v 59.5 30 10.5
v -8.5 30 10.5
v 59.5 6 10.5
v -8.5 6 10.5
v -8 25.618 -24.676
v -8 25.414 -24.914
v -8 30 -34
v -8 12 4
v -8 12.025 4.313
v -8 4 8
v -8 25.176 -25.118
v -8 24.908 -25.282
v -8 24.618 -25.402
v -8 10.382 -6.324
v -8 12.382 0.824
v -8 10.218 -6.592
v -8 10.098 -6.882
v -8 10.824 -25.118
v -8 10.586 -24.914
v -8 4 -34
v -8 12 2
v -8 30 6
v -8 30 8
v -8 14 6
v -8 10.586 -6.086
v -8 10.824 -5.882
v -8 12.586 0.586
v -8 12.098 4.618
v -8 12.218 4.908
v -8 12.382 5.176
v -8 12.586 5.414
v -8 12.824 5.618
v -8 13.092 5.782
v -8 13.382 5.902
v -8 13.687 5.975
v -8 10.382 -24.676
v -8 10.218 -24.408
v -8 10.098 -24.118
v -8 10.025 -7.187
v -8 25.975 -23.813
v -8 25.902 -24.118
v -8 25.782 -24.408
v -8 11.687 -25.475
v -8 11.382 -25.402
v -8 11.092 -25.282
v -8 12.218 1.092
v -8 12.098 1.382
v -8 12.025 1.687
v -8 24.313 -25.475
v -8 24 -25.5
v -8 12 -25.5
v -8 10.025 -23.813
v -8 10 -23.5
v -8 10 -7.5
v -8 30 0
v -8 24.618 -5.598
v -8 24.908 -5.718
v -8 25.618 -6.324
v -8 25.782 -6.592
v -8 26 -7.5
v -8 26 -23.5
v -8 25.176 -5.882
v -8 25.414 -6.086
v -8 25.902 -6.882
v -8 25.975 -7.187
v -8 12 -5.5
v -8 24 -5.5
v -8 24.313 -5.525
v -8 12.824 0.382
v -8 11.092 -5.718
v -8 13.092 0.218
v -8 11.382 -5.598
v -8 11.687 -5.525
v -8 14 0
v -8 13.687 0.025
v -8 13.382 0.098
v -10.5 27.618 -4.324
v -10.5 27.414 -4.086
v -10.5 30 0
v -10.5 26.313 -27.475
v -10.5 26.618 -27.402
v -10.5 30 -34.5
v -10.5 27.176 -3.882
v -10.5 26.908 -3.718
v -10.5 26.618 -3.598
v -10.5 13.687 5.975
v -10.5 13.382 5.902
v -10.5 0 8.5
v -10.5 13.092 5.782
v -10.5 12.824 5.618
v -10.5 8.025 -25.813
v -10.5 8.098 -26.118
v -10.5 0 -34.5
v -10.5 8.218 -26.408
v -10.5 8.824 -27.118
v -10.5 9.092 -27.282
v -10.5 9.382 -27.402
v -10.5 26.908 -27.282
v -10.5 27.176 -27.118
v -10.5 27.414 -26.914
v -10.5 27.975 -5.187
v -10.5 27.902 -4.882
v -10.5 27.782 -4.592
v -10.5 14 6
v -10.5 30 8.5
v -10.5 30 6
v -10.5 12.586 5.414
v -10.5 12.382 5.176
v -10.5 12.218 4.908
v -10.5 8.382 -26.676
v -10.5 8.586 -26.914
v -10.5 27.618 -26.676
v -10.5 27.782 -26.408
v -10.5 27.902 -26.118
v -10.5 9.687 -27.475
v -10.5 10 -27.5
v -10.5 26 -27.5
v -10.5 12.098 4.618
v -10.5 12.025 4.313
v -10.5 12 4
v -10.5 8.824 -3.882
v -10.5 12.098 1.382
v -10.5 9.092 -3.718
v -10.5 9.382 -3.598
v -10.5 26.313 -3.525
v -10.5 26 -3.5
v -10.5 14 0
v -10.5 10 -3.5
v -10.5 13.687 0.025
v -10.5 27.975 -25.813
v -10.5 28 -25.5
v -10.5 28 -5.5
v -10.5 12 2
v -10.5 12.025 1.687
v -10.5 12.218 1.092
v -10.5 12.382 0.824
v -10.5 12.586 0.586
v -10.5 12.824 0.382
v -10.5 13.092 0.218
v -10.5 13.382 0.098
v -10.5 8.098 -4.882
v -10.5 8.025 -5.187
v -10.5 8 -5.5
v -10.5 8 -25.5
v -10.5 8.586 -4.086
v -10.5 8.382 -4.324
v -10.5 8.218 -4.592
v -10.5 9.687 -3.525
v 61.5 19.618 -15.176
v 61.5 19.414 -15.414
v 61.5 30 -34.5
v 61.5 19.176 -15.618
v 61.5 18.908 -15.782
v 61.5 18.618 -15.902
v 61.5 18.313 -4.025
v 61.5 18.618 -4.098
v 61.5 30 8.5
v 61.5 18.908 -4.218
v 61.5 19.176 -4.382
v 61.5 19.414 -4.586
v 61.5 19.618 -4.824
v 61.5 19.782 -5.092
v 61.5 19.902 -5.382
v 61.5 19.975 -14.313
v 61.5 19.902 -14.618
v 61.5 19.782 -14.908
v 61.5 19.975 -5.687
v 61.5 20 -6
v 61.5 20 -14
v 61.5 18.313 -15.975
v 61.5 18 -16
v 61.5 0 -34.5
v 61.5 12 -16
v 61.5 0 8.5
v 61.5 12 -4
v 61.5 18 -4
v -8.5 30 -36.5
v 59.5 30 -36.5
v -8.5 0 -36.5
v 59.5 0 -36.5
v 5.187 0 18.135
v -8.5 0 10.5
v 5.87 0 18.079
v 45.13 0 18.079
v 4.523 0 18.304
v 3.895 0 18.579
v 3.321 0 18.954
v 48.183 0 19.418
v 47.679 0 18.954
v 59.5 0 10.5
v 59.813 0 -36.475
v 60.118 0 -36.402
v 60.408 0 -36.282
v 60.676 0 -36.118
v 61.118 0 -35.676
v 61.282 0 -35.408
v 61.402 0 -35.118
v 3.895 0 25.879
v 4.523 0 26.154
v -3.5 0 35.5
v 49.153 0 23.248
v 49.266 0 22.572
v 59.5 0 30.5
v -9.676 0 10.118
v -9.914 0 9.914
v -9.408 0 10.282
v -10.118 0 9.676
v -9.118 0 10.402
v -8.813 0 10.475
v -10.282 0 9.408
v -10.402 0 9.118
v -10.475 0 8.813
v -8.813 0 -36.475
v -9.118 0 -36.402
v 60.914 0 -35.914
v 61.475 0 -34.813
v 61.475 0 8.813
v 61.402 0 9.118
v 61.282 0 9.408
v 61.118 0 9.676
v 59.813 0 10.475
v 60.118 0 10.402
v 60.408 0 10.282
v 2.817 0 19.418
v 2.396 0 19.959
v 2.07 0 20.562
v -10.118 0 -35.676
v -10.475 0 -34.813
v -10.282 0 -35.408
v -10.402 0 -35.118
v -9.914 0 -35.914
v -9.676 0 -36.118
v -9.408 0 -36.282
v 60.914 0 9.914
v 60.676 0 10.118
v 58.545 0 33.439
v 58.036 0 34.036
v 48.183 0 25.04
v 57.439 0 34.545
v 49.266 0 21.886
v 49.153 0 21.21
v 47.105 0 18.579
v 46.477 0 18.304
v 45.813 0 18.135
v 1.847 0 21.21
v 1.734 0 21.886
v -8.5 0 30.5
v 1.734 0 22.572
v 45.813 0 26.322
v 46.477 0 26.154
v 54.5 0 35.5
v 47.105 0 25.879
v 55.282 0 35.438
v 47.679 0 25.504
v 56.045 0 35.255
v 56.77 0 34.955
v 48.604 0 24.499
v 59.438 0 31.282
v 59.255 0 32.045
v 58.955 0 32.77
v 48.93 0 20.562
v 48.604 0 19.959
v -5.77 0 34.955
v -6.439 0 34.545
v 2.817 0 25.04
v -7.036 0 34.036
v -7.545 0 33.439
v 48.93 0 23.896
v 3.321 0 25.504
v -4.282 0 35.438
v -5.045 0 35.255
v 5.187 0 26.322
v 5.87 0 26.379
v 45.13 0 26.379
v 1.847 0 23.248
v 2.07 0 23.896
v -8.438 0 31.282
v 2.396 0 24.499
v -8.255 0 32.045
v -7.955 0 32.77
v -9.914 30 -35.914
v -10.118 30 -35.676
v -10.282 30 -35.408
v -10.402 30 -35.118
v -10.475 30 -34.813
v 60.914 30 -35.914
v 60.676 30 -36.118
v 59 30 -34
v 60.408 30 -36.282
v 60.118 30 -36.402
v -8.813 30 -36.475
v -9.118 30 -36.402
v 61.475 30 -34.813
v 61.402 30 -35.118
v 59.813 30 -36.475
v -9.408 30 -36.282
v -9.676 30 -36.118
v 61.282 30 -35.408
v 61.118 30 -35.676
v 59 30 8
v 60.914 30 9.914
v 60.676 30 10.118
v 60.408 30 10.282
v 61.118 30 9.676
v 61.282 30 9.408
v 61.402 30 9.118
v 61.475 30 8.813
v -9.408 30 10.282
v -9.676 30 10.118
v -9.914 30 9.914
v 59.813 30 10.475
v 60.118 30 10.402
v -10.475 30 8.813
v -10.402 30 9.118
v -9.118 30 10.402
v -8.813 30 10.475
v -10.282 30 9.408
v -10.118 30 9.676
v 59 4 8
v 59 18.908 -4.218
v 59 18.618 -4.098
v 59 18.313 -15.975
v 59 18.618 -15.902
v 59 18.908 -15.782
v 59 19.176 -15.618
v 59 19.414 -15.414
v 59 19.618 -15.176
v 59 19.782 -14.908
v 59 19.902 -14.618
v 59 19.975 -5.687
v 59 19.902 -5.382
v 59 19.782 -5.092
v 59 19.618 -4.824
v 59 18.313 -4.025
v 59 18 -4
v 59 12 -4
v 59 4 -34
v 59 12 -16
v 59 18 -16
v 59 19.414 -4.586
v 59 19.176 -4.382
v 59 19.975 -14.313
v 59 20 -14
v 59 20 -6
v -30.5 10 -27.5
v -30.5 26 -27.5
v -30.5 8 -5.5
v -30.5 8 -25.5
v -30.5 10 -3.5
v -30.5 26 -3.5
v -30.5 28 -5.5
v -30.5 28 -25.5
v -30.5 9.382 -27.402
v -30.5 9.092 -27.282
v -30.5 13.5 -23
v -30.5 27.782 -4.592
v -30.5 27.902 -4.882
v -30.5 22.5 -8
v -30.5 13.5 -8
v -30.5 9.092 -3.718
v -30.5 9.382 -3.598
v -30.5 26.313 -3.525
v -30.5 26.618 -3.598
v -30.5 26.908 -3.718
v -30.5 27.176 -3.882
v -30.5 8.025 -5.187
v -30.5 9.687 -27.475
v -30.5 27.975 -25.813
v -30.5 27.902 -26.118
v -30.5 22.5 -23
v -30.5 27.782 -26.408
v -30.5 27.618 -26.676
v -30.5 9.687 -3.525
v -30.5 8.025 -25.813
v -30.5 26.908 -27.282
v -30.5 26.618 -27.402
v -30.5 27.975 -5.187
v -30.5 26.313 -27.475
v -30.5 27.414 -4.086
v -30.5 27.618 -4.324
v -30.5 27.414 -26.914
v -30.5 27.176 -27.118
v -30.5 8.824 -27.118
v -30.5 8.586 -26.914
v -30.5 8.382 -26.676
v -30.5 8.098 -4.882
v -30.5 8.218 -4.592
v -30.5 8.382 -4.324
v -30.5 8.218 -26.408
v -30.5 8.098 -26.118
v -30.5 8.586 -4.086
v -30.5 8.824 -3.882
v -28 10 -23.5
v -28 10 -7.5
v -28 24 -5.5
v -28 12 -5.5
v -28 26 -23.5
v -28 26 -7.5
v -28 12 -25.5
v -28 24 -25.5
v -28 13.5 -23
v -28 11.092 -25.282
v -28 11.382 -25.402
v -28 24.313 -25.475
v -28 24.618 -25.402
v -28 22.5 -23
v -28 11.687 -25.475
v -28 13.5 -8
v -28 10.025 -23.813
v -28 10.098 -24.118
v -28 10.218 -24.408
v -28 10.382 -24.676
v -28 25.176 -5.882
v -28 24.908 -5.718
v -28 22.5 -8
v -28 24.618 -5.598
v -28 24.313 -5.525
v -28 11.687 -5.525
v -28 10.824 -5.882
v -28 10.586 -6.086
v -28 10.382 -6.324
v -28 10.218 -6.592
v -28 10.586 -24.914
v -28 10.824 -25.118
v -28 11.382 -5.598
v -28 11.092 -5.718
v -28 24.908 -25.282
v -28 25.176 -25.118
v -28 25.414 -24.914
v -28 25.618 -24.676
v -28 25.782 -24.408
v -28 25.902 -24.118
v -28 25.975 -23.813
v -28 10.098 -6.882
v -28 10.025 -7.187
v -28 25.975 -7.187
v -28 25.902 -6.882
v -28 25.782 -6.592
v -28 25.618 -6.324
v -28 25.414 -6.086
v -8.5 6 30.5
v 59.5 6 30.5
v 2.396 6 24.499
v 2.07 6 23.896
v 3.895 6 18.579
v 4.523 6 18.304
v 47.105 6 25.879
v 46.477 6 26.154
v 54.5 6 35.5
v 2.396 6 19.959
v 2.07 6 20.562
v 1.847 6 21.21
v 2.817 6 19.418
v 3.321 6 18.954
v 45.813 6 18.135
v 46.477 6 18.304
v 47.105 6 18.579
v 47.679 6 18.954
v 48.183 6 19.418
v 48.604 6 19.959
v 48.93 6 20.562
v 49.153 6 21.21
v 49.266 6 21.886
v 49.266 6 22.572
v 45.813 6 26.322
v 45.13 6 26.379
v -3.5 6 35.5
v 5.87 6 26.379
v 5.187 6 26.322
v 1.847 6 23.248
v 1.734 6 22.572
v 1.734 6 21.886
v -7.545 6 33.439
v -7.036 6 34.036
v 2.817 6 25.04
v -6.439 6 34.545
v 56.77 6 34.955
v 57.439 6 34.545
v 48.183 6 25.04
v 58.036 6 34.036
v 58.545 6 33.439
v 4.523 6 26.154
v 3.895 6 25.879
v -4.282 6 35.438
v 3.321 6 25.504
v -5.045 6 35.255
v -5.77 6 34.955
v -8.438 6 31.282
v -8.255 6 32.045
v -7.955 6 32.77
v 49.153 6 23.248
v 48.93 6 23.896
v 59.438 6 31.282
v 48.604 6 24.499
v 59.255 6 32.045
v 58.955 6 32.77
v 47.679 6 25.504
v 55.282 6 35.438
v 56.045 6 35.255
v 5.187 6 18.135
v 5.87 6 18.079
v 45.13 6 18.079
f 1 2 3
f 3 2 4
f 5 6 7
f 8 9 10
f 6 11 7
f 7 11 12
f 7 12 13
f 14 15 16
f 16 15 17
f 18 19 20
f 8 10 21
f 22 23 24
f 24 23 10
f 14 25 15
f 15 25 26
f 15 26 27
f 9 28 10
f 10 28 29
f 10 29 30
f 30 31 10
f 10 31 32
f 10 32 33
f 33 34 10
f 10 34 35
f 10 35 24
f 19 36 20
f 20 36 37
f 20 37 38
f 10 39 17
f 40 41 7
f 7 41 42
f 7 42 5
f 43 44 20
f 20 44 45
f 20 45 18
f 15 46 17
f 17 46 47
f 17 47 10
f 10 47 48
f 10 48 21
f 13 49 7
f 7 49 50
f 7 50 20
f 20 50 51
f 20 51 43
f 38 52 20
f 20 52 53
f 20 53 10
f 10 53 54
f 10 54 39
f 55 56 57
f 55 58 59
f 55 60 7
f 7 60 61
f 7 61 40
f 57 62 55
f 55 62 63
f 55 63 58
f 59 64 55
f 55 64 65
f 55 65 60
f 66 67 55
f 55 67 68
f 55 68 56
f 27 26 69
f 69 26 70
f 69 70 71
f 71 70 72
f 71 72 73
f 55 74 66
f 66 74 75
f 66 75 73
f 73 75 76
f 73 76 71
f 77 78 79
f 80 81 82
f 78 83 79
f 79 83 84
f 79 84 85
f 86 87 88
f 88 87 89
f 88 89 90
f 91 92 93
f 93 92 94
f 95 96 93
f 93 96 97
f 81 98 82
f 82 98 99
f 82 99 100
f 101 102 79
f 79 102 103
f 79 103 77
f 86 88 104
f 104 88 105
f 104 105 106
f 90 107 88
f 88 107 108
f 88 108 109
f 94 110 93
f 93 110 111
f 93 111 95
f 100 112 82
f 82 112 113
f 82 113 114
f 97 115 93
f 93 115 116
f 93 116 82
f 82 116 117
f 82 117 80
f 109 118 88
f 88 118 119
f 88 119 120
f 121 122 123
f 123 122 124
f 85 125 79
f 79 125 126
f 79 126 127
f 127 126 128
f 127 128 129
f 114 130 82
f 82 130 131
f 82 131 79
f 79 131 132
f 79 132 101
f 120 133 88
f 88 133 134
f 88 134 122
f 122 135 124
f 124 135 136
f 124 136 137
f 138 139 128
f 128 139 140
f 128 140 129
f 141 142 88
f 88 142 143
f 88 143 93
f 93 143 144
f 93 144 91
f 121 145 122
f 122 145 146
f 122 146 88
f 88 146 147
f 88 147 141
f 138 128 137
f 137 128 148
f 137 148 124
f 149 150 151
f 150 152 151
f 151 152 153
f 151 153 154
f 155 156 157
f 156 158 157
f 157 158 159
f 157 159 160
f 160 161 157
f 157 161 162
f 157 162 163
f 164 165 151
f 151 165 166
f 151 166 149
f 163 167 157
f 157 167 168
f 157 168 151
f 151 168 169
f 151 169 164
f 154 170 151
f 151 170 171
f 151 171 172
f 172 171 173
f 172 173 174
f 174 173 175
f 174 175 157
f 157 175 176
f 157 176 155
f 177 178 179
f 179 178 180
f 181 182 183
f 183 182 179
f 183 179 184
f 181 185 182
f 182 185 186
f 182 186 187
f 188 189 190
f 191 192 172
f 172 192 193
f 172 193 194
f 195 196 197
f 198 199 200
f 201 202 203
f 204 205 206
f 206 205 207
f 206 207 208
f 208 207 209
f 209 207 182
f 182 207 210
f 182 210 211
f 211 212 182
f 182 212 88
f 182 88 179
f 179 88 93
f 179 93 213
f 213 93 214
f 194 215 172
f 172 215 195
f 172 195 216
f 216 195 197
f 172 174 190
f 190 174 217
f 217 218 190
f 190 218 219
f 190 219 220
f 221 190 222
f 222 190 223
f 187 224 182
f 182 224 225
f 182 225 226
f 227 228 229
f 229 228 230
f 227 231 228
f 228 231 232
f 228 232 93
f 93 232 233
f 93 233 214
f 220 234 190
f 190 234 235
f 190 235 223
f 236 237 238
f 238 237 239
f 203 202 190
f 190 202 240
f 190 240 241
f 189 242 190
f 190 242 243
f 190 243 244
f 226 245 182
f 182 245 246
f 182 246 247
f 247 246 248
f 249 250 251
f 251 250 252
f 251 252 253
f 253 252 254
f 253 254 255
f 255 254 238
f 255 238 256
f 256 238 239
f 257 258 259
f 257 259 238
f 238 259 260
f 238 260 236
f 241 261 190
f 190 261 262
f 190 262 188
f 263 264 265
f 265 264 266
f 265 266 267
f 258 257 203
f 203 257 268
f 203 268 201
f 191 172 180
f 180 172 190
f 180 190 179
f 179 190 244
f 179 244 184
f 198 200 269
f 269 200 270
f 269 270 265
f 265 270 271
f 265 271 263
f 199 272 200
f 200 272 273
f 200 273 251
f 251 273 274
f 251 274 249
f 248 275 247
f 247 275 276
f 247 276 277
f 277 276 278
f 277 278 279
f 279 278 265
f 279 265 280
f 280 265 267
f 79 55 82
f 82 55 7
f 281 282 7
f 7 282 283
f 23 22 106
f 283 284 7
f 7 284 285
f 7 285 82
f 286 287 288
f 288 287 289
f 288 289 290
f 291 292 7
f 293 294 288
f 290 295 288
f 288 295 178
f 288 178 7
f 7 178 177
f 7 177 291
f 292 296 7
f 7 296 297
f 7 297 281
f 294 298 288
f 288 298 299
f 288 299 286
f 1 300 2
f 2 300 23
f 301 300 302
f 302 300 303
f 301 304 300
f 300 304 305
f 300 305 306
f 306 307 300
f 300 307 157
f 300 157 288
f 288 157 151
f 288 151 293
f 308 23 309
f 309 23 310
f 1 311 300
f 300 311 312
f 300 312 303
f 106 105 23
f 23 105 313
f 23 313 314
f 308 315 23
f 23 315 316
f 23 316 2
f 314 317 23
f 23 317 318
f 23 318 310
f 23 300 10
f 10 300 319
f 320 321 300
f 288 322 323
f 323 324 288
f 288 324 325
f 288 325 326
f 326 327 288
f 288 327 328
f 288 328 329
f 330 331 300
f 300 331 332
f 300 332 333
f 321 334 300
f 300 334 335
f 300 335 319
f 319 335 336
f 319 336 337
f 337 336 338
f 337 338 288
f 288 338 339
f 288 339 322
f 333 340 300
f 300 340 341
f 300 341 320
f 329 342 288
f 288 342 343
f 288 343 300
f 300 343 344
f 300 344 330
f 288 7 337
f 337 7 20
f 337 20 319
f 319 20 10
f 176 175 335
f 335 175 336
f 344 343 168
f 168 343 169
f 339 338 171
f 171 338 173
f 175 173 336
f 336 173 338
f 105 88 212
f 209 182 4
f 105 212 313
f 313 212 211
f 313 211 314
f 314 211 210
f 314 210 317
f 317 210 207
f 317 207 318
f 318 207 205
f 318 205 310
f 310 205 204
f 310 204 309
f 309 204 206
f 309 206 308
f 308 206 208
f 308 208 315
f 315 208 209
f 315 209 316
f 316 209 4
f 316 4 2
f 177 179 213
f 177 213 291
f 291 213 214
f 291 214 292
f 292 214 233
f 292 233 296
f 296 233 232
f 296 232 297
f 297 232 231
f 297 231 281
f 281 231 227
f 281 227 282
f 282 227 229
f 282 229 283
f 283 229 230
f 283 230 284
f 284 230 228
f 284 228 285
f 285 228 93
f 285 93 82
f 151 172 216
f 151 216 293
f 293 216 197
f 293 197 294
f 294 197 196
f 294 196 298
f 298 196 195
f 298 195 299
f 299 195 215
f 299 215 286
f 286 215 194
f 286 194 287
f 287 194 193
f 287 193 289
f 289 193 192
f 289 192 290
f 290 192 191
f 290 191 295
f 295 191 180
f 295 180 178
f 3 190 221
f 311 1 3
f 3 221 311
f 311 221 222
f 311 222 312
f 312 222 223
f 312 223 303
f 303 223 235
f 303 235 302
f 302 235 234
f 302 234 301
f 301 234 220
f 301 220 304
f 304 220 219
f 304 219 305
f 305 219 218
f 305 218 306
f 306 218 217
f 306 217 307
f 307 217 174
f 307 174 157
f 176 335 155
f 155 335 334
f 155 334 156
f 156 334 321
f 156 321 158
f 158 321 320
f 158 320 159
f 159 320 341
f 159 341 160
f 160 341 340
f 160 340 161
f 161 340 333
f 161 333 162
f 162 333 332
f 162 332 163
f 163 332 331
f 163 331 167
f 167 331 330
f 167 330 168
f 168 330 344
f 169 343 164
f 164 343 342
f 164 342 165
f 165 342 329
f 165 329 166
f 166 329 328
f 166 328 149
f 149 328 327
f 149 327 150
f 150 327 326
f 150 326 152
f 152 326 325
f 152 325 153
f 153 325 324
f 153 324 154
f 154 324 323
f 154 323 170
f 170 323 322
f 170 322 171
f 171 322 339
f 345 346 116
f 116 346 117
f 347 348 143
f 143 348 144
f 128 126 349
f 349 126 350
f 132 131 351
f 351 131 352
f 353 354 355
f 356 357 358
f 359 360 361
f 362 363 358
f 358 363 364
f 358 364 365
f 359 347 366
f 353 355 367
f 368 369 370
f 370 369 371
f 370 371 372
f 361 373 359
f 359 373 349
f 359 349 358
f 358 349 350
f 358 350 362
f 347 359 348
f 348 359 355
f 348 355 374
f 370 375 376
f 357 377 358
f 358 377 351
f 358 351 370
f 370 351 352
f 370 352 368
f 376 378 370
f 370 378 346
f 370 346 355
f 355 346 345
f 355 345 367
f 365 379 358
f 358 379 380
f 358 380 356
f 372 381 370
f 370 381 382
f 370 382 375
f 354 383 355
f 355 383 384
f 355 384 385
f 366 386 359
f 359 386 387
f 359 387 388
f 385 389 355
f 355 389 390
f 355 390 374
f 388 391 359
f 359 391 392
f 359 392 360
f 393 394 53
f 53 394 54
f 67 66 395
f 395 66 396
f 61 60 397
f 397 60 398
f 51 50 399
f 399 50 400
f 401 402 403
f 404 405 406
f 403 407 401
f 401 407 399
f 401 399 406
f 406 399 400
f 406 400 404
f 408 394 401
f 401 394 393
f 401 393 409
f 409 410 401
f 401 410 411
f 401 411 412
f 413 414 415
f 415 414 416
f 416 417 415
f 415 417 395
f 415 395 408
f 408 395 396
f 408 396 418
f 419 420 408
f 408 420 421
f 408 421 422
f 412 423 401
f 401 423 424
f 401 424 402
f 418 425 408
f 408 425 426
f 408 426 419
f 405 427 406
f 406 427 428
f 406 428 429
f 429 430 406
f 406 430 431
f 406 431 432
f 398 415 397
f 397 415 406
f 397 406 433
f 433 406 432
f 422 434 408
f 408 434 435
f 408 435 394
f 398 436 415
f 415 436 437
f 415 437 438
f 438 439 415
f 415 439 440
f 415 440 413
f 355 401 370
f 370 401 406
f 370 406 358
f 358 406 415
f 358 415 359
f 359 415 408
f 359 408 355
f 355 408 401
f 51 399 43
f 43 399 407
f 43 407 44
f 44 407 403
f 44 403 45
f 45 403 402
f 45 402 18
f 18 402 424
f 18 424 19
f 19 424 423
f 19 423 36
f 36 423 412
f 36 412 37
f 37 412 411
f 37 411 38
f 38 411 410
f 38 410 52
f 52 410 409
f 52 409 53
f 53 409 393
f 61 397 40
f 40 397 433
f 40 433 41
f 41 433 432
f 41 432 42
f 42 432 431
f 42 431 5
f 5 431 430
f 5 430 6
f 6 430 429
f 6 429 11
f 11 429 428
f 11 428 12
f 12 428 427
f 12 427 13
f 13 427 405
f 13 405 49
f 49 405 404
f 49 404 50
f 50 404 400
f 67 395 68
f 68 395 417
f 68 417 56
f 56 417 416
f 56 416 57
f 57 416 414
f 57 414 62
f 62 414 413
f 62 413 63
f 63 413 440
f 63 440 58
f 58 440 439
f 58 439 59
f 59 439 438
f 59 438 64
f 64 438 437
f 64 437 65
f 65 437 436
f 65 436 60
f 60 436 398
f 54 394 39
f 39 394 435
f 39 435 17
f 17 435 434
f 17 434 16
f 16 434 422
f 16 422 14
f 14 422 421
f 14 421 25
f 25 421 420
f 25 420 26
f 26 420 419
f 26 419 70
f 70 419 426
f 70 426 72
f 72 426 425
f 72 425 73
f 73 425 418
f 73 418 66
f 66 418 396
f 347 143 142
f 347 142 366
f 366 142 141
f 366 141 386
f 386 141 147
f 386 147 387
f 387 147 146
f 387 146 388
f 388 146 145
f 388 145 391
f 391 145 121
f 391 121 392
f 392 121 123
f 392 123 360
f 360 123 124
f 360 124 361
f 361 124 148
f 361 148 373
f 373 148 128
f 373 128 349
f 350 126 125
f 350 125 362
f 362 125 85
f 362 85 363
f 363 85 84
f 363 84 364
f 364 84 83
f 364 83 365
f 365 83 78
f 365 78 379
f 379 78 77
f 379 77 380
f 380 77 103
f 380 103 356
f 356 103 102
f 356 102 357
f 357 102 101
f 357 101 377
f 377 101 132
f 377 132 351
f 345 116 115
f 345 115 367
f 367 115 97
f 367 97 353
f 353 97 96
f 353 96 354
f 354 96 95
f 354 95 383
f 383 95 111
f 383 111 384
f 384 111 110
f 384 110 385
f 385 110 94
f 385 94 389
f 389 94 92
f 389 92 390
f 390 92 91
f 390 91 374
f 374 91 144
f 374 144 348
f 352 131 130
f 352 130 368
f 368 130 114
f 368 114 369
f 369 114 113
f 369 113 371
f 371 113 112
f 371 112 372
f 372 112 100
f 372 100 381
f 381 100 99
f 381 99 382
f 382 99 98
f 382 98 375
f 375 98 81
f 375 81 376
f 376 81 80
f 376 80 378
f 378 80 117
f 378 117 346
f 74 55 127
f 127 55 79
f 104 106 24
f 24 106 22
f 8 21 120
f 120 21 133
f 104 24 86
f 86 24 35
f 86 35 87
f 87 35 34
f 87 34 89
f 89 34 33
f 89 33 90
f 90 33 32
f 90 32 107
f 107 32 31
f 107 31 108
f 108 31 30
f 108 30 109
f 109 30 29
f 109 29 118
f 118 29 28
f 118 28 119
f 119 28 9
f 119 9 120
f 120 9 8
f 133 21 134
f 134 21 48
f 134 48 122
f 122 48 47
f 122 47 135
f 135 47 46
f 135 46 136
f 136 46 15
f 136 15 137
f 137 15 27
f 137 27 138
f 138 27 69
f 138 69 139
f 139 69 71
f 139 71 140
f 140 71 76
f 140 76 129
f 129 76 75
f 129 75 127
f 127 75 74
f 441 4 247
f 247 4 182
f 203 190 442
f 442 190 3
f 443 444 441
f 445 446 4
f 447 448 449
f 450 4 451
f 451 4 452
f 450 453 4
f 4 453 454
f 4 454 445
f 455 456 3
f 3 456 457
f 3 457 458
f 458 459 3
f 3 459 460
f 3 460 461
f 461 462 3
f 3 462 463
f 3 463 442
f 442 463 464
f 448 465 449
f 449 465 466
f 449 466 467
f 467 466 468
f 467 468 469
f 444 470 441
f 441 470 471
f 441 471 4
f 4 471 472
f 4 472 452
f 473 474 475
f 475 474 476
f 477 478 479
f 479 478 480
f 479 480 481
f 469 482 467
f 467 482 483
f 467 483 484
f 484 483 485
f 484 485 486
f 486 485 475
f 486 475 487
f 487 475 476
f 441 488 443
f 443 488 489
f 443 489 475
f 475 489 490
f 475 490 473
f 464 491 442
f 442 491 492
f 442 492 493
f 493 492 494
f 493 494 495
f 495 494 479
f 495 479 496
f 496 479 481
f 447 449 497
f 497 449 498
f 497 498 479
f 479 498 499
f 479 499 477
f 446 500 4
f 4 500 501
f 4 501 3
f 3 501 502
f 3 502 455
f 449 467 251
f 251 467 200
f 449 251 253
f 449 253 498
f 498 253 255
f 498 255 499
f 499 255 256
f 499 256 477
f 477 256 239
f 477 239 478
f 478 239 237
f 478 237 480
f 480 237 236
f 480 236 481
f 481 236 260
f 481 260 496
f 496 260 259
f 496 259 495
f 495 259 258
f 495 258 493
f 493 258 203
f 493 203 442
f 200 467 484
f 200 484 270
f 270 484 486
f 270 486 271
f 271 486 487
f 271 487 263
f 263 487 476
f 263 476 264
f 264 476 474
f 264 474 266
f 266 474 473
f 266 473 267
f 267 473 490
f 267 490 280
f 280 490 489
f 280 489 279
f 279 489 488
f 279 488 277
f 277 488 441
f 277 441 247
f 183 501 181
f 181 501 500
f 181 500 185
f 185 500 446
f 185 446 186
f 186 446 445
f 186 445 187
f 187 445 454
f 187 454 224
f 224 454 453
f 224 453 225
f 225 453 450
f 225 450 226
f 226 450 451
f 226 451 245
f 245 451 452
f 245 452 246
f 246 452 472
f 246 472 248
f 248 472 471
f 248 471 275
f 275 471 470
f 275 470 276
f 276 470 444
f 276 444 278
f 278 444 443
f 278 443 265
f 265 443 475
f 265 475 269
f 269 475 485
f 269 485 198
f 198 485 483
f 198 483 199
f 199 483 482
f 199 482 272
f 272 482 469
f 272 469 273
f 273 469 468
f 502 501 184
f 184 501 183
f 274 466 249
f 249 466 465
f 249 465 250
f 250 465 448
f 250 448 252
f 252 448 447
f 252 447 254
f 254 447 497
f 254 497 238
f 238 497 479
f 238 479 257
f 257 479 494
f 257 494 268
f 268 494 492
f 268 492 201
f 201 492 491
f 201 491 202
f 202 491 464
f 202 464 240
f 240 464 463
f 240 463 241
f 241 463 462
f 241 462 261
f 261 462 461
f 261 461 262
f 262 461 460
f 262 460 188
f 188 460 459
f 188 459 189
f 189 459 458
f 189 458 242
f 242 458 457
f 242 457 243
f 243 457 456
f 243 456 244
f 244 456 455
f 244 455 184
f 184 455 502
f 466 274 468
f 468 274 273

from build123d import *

# Parameters (mm, degrees)
SKETCH1_W           = 72
SKETCH1_H           = 47
BOSS_EXTRUDE1_DEPTH = 4
SKETCH3_W           = 72
SKETCH3_H           = 47
SKETCH3_W_2         = 67
SKETCH3_H_2         = 42
BOSS_EXTRUDE3_DEPTH = 26
SKETCH5_W           = 12
SKETCH5_H           = 8
CUT_EXTRUDE1_DEPTH  = 6
FILLET2_R           = 2
FILLET3_R           = 2
SKETCH11_W          = 24
SKETCH11_H          = 20
BOSS_EXTRUDE7_DEPTH = 20
SKETCH12_W          = 20
SKETCH12_H          = 16
CUT_EXTRUDE4_DEPTH  = 20
SKETCH13_W          = 15
SKETCH13_H          = 9
CUT_EXTRUDE5_DEPTH  = 20
FILLET4_R           = 2
FILLET5_R           = 2
SKETCH14_W          = 6
SKETCH14_H          = 25
CUT_EXTRUDE6_DEPTH  = 5
FILLET6_R           = 2
SKETCH15_W          = 68
SKETCH15_H          = 6
BOSS_EXTRUDE8_DEPTH = 25
FILLET7_R           = 5
CUT_EXTRUDE7_DEPTH  = 25


with BuildPart() as part:
    # Sketch1 → Boss-Extrude1 (new body)
    with BuildSketch(Plane(origin=(0, 0, 0), x_dir=(1, 0, 0), z_dir=(0, 1, 0))):
        with Locations((25.5, 13)):
            Rectangle(SKETCH1_W, SKETCH1_H)
    extrude(amount=BOSS_EXTRUDE1_DEPTH)

    # Sketch3 → Boss-Extrude3 (add)
    with BuildSketch(Plane(origin=(0, 4, 0), x_dir=(1, 0, 0), z_dir=(0, 1, 0))):
        with Locations((25.5, 13)):
            Rectangle(SKETCH3_W, SKETCH3_H)
        with Locations((25.5, 13)):
            Rectangle(SKETCH3_W_2, SKETCH3_H_2, mode=Mode.SUBTRACT)
    extrude(amount=BOSS_EXTRUDE3_DEPTH)

    # Sketch5 → Cut-Extrude1 (cut)
    with BuildSketch(Plane(origin=(61.5, 0, 0), x_dir=(0, 0, -1), z_dir=(1, 0, 0))):
        with Locations((10, 16)):
            Rectangle(SKETCH5_W, SKETCH5_H)
    extrude(amount=-CUT_EXTRUDE1_DEPTH, mode=Mode.SUBTRACT)

    # Fillet2
    fillet2_edges = [part.edges().sort_by_distance(p)[0] for p in [
        (-10.5, 15, 10.5),
        (-10.5, 15, -36.5),
        (61.5, 15, -36.5),
        (61.5, 15, 10.5),
    ]]
    fillet(fillet2_edges, radius=FILLET2_R)

    # Fillet3
    fillet3_edges = [part.edges().sort_by_distance(p)[0] for p in [
        (60.25, 20, -4),
        (60.25, 20, -16),
    ]]
    fillet(fillet3_edges, radius=FILLET3_R)

    # Sketch11 → Boss-Extrude7 (add)
    with BuildSketch(Plane.ZY.offset(10.5)):
        with Locations((-15.5, 18)):
            Rectangle(SKETCH11_W, SKETCH11_H)
    extrude(amount=BOSS_EXTRUDE7_DEPTH)

    # Sketch12 → Cut-Extrude4 (cut)
    with BuildSketch(Plane(origin=(-8, 0, 0), x_dir=(0, 0, -1), z_dir=(1, 0, 0))):
        with Locations((15.5, 18)):
            Rectangle(SKETCH12_W, SKETCH12_H)
    extrude(amount=-CUT_EXTRUDE4_DEPTH, mode=Mode.SUBTRACT)

    # Sketch13 → Cut-Extrude5 (cut)
    with BuildSketch(Plane.ZY.offset(30.5)):
        with Locations((-15.5, 18)):
            Rectangle(SKETCH13_W, SKETCH13_H)
    extrude(amount=-CUT_EXTRUDE5_DEPTH, mode=Mode.SUBTRACT)

    # Fillet4
    fillet4_edges = [part.edges().sort_by_distance(p)[0] for p in [
        (-18, 10, -25.5),
        (-18, 10, -5.5),
        (-18, 26, -5.5),
        (-18, 26, -25.5),
    ]]
    fillet(fillet4_edges, radius=FILLET4_R)

    # Fillet5
    fillet5_edges = [part.edges().sort_by_distance(p)[0] for p in [
        (-20.5, 28, -27.5),
        (-20.5, 8, -27.5),
        (-20.5, 8, -3.5),
        (-20.5, 28, -3.5),
    ]]
    fillet(fillet5_edges, radius=FILLET5_R)

    # Sketch14 → Cut-Extrude6 (cut)
    with BuildSketch(Plane.ZY.offset(10.5)):
        with Locations((3, 24.5)):
            Rectangle(SKETCH14_W, SKETCH14_H)
    extrude(amount=-CUT_EXTRUDE6_DEPTH, mode=Mode.SUBTRACT)

    # Fillet6
    fillet6_edges = [part.edges().sort_by_distance(p)[0] for p in [
        (-9.25, 12, 0),
        (-9.25, 12, 6),
    ]]
    fillet(fillet6_edges, radius=FILLET6_R)

    # Sketch15 → Boss-Extrude8 (add)
    with BuildSketch(Plane.XY.offset(10.5)):
        with Locations((25.5, 3)):
            Rectangle(SKETCH15_W, SKETCH15_H)
    extrude(amount=BOSS_EXTRUDE8_DEPTH)

    # Fillet7
    fillet7_edges = [part.edges().sort_by_distance(p)[0] for p in [
        (-8.5, 3, 35.5),
        (59.5, 3, 35.5),
    ]]
    fillet(fillet7_edges, radius=FILLET7_R)

    # Sketch16 → Cut-Extrude7 (cut)
    with BuildSketch(Plane(origin=(0, 6, 0), x_dir=(1, 0, 0), z_dir=(0, 1, 0))):
        with BuildLine():
            Line((5.870048695, -18.078882232), (45.129951305, -18.078882232))
            ThreePointArc((45.129951305, -18.078882232), (49.279951305, -22.228882232), (45.129951305, -26.378882232))
            Line((45.129951305, -26.378882232), (5.870048695, -26.378882232))
            ThreePointArc((5.870048695, -26.378882232), (1.720048695, -22.228882232), (5.870048695, -18.078882232))
        make_face()
    extrude(amount=-CUT_EXTRUDE7_DEPTH, mode=Mode.SUBTRACT)


solid = part.part
